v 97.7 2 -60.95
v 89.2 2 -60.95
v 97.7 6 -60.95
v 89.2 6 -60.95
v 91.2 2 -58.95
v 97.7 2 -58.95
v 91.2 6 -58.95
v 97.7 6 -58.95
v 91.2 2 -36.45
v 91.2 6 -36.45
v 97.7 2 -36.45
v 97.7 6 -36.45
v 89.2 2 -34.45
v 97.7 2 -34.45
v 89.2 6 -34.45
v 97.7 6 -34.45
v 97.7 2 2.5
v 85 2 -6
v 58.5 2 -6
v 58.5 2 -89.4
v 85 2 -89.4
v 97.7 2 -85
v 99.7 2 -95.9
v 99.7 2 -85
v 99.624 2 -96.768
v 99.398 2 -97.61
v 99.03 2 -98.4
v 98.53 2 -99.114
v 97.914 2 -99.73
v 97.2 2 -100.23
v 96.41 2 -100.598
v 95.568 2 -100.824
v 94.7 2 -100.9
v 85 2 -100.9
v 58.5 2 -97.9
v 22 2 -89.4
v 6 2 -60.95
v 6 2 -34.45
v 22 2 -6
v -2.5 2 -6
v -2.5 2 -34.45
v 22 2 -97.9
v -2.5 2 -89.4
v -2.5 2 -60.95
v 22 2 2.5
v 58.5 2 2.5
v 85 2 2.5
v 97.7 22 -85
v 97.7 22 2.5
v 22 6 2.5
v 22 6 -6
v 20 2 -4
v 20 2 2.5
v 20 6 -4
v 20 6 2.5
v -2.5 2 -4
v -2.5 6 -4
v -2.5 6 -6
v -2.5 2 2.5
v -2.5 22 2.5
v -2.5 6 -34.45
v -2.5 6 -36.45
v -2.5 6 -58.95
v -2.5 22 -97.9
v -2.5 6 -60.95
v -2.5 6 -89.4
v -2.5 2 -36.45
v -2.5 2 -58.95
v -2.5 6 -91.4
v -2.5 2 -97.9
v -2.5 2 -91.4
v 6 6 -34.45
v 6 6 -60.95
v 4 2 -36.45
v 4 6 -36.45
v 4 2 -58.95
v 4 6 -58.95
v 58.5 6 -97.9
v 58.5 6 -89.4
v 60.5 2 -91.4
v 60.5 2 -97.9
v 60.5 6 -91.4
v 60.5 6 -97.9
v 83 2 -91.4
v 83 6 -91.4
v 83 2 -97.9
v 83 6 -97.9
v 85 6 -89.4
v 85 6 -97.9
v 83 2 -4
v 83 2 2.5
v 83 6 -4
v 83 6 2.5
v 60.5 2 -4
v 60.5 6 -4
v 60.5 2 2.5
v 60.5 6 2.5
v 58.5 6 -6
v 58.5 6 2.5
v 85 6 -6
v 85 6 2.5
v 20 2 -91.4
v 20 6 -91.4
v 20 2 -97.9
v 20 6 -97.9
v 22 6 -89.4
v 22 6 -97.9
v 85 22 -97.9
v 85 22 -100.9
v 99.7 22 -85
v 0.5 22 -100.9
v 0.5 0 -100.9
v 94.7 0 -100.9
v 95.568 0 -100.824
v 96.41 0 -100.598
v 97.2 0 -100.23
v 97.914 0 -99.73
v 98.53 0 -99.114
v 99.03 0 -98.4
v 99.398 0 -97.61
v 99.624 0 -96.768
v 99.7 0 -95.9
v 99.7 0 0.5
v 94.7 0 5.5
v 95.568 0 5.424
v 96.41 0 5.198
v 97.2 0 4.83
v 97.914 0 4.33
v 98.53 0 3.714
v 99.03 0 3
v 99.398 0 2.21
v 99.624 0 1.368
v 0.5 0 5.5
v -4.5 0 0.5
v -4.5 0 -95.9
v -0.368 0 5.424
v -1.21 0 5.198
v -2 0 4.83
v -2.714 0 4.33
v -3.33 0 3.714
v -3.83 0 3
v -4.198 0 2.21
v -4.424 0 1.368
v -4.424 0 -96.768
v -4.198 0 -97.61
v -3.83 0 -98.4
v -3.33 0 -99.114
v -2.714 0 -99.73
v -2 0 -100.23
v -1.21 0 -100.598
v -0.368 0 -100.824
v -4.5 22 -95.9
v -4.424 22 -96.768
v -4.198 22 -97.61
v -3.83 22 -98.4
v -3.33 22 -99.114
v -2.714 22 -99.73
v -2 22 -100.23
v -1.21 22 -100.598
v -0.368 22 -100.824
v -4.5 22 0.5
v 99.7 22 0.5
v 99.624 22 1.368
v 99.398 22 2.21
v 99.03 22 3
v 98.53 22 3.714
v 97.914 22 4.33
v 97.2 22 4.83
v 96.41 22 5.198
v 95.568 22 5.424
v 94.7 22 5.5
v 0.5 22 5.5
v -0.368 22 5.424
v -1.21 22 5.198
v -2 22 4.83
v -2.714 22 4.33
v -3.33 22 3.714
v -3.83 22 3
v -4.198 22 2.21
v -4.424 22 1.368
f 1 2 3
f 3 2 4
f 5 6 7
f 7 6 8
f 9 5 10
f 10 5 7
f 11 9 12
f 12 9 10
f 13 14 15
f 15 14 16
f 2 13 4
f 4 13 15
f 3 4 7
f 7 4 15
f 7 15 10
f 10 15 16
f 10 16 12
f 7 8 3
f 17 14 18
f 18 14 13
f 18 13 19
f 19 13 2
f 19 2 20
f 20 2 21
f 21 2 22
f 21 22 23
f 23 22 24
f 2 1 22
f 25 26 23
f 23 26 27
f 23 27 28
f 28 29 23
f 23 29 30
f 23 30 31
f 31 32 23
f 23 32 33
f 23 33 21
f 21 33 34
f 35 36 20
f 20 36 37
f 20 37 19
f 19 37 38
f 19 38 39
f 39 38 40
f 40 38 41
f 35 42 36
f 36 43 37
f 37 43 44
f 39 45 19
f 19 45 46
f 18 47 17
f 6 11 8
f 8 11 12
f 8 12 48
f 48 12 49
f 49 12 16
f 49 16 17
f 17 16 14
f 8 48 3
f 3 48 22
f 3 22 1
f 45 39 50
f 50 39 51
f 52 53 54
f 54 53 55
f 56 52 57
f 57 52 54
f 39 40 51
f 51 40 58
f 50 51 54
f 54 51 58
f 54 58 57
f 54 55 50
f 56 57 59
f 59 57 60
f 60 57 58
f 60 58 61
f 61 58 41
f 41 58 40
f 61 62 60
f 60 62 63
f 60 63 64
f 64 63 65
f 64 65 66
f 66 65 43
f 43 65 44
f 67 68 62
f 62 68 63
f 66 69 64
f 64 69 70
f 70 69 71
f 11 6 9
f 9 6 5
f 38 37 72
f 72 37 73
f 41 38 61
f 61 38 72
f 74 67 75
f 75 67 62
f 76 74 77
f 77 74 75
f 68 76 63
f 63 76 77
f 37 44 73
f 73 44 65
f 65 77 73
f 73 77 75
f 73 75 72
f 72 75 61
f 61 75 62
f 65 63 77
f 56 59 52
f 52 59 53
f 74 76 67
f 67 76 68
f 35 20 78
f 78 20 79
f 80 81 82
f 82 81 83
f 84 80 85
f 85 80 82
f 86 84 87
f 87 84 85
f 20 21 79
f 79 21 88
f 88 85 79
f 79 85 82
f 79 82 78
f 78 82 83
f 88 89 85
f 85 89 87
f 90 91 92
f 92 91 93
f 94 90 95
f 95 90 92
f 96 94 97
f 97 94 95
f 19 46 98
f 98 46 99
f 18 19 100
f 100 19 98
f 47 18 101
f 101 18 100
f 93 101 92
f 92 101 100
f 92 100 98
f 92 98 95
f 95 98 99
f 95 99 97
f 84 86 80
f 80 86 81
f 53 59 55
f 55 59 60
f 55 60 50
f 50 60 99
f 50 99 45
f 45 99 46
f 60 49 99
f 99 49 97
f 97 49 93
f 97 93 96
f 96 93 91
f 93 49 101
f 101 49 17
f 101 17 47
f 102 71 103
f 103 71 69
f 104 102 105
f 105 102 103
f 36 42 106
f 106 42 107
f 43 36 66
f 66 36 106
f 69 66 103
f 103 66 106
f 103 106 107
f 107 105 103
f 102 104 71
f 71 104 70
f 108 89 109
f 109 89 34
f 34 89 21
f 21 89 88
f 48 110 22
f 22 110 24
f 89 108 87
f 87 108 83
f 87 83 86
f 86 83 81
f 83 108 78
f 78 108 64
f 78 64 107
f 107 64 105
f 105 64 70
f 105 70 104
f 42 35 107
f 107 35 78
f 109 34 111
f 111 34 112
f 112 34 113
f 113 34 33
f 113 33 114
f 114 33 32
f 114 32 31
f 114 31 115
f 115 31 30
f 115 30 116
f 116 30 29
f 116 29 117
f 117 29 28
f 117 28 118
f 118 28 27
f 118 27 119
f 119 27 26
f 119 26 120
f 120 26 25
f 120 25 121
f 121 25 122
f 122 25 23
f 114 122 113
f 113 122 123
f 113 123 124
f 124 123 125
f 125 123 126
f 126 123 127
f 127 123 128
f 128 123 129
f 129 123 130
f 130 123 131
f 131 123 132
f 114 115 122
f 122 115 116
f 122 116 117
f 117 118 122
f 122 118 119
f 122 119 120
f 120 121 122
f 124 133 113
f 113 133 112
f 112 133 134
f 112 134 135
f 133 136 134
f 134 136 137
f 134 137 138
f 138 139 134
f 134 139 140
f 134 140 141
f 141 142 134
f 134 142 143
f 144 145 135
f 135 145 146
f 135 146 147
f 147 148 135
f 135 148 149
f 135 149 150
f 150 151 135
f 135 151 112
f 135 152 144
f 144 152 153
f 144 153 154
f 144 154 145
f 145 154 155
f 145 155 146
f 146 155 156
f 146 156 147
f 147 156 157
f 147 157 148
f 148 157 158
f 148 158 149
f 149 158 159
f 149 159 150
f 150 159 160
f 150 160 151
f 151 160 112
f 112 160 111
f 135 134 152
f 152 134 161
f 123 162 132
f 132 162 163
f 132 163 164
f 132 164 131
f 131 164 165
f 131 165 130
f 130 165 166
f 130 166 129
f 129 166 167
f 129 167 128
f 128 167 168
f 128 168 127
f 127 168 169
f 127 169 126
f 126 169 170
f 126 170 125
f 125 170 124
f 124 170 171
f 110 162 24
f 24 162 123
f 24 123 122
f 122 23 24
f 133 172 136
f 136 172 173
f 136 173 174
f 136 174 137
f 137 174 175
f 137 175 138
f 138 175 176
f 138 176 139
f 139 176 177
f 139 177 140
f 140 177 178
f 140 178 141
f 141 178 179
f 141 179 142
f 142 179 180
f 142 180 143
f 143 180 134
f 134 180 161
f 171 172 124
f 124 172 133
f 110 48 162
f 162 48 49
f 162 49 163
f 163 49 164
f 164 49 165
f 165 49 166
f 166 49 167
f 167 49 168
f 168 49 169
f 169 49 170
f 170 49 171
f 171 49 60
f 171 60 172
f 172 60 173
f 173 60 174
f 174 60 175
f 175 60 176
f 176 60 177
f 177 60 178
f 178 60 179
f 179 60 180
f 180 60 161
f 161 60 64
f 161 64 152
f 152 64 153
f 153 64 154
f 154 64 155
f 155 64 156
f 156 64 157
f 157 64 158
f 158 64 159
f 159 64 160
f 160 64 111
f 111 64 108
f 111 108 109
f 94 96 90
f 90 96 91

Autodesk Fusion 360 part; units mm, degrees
sketch "草图1" plane through (0, 0, 0) normal (0, 1, 0) x (1, 0, 0)
  line L0 (0, 0) -> (95.2, 0)
  line L1 (95.2, 0) -> (95.2, 95.4)
  line L2 (95.2, 95.4) -> (0, 95.4)
  line L3 (0, 95.4) -> (0, 0)
  line L4 (-1.5, 96.9) -> (96.7, 96.9)
  line L5 (96.7, 96.9) -> (96.7, -1.5)
  line L6 (96.7, -1.5) -> (-1.5, -1.5)
  line L7 (-1.5, -1.5) -> (-1.5, 96.9)
  line L8 (-2.5, 97.9) -> (97.7, 97.9)
  line L9 (97.7, 97.9) -> (97.7, -2.5)
  line L10 (97.7, -2.5) -> (-2.5, -2.5)
  line L11 (-2.5, -2.5) -> (-2.5, 97.9)
  line L12 (-4.5, 100.9) -> (99.7, 100.9)
  line L13 (99.7, 100.9) -> (99.7, -5.5)
  line L14 (99.7, -5.5) -> (-4.5, -5.5)
  line L15 (-4.5, -5.5) -> (-4.5, 100.9)
  line L16 (99.7, 100.9) -> (79.7, 100.9)
  line L17 (79.7, 100.9) -> (79.7, 80.9)
  line L18 (79.7, 80.9) -> (99.7, 80.9)
  line L19 (99.7, 80.9) -> (99.7, 100.9)
  line L20 (79.7, 100.9) -> (99.7, 80.9)
  dimension "d1" = 95.2
  dimension "d2" = 95.4
  dimension "d3" = 1.5
  dimension "d4" = 1.5
  dimension "d5" = 1.5
  dimension "d6" = 1.5
  dimension "d7" = 1
  dimension "d8" = 1
  dimension "d9" = 1
  dimension "d10" = 1
  dimension "d11" = 3
  dimension "d12" = 2
  dimension "d13" = 2
  dimension "d14" = 3
  dimension "d21" = 20
  dimension "d22" = 20
extrude "拉伸1" add sketch "草图1" along normal blind 2 contours L0 L1 L2 L3 L17 L18 | L0 L1 L2 L3 L4 L5 L6 L7 L17 L18 | L1 L2 L17 L18 L20 | L1 L5 L18 L20 | L2 L4 L17 L20 | L1 L2 L20 | L1 L2 L4 L5 L20 | L4 L5 L6 L7 L8 L9 L10 L11 L17 L18 | L5 L9 L18 L20 | L4 L8 L17 L20 | L4 L5 L8 L9 L20
extrude "拉伸2" add sketch "草图1" along normal blind 22 contours L8 L9 L10 L11 L12 L13 L14 L15 L17 L18 | L9 L18 L20 | L8 L17 L20 | L8 L9 L12 L13 L16 L19 L20
fillet "圆角1" radius 5 4 edges at (-4.5, 11, 5.5) (99.7, 11, 5.5) (-4.5, 11, -100.9) (99.7, 11, -100.9)
extrude "拉伸3" [suppressed]
fillet "圆角2" [suppressed]
sketch "草图2" plane through (0, 2, 0) normal (0, 1, 0) x (-1, 0, 0)
  line L0 (-97.7, -97.9) -> (2.5, -97.9)
  line L1 (2.5, -97.9) -> (2.5, 2.5)
  line L2 (2.5, 2.5) -> (-97.7, 2.5)
  line L3 (-97.7, 2.5) -> (-97.7, -97.9)
  line L4 (2.5, 2.5) -> (2.5, -20)
  line L5 (2.5, -20) -> (-5.5, -20)
  line L6 (-5.5, -20) -> (-5.5, -22)
  line L7 (-5.5, -22) -> (2.5, -22)
  line L8 (2.5, -22) -> (2.5, -20)
  line L9 (-5.5, -20) -> (-3.5, -20)
  line L10 (-3.5, -20) -> (-3.5, 2.5)
  line L11 (-3.5, 2.5) -> (-5.5, 2.5)
  line L12 (-5.5, 2.5) -> (-5.5, -20)
  line L13 (-97.7, 2.5) -> (-91.7, 2.5)
  line L14 (-91.7, 2.5) -> (-91.7, -20)
  line L15 (-91.7, -20) -> (-97.7, -20)
  line L16 (-97.7, -20) -> (-97.7, 2.5)
  line L17 (-97.7, -20) -> (-89.7, -20)
  line L18 (-89.7, -20) -> (-89.7, -23)
  line L19 (-89.7, -23) -> (-97.7, -23)
  line L20 (-97.7, -23) -> (-97.7, -20)
  line L21 (-89.7, -20) -> (-91.7, -20)
  line L22 (-91.7, -20) -> (-91.7, 2.5)
  line L23 (-91.7, 2.5) -> (-89.7, 2.5)
  line L24 (-89.7, 2.5) -> (-89.7, -20)
  line L25 (-91.7, -97.9) -> (-91.7, -75.4)
  line L26 (-91.7, -97.9) -> (-97.7, -97.9)
  line L27 (-97.7, -97.9) -> (-97.7, -75.4)
  line L28 (-97.7, -75.4) -> (-91.7, -75.4)
  line L29 (2.5, -97.9) -> (2.5, -75.4)
  line L30 (-3.5, -75.4) -> (2.5, -75.4)
  line L31 (-3.5, -97.9) -> (-3.5, -75.4)
  line L32 (2.5, -97.9) -> (-3.5, -97.9)
  line L33 (2.5, -75.4) -> (-5.5, -75.4)
  line L34 (-5.5, -75.4) -> (-5.5, -73.4)
  line L35 (-5.5, -73.4) -> (2.5, -73.4)
  line L36 (2.5, -73.4) -> (2.5, -75.4)
  line L37 (-5.5, -75.4) -> (-3.5, -75.4)
  line L38 (-3.5, -75.4) -> (-3.5, -97.9)
  line L39 (-3.5, -97.9) -> (-5.5, -97.9)
  line L40 (-5.5, -97.9) -> (-5.5, -75.4)
  line L41 (-97.7, -75.4) -> (-89.7, -75.4)
  line L42 (-89.7, -75.4) -> (-89.7, -73.4)
  line L43 (-89.7, -73.4) -> (-97.7, -73.4)
  line L44 (-97.7, -73.4) -> (-97.7, -75.4)
  line L45 (-89.7, -75.4) -> (-91.7, -75.4)
  line L46 (-91.7, -75.4) -> (-91.7, -97.9)
  line L47 (-91.7, -97.9) -> (-89.7, -97.9)
  line L48 (-89.7, -97.9) -> (-89.7, -75.4)
  line L49 (-47.6, -97.9) -> (-47.6, -91.9)
  line L50 (-47.6, -91.9) -> (-36.35, -91.9)
  line L51 (-47.6, -91.9) -> (-58.85, -91.9)
  line L52 (-36.35, -91.9) -> (-58.85, -91.9)
  line L53 (-58.85, -91.9) -> (-58.85, -97.9)
  line L54 (-58.85, -97.9) -> (-36.35, -97.9)
  line L55 (-36.35, -97.9) -> (-36.35, -91.9)
  line L56 (-47.6, 2.5) -> (-36.35, 2.5)
  line L57 (-36.35, -3.5) -> (-36.35, 2.5)
  line L58 (-58.85, -3.5) -> (-36.35, -3.5)
  line L59 (-36.35, 2.5) -> (-58.85, 2.5)
  line L60 (-58.85, 2.5) -> (-58.85, -3.5)
  line L61 (-36.35, -97.9) -> (-34.35, -97.9)
  line L62 (-34.35, -97.9) -> (-34.35, -89.9)
  line L63 (-34.35, -89.9) -> (-36.35, -89.9)
  line L64 (-36.35, -89.9) -> (-36.35, -97.9)
  line L65 (-36.35, -89.9) -> (-58.85, -89.9)
  line L66 (-58.85, -89.9) -> (-58.85, -91.9)
  line L67 (-58.85, -91.9) -> (-36.35, -91.9)
  line L68 (-36.35, -91.9) -> (-36.35, -89.9)
  line L69 (-58.85, -89.9) -> (-60.85, -89.9)
  line L70 (-60.85, -89.9) -> (-60.85, -97.9)
  line L71 (-60.85, -97.9) -> (-58.85, -97.9)
  line L72 (-58.85, -97.9) -> (-58.85, -89.9)
  line L73 (-36.35, 2.5) -> (-34.35, 2.5)
  line L74 (-34.35, 2.5) -> (-34.35, -5.5)
  line L75 (-34.35, -5.5) -> (-36.35, -5.5)
  line L76 (-36.35, -5.5) -> (-36.35, 2.5)
  line L77 (-58.85, 2.5) -> (-60.85, 2.5)
  line L78 (-60.85, 2.5) -> (-60.85, -5.5)
  line L79 (-60.85, -5.5) -> (-58.85, -5.5)
  line L80 (-58.85, -5.5) -> (-58.85, 2.5)
  line L81 (-36.35, -5.5) -> (-58.85, -5.5)
  line L82 (-58.85, -5.5) -> (-58.85, -3.5)
  line L83 (-58.85, -3.5) -> (-36.35, -3.5)
  line L84 (-36.35, -3.5) -> (-36.35, -5.5)
  dimension "d27" = 22.5
  dimension "d28" = 8
  dimension "d29" = 2
  dimension "d32" = 6
  dimension "d33" = 22.5
  dimension "d34" = 8
  dimension "d35" = 3
  dimension "d38" = 77.9
  dimension "d39" = 0
  dimension "d42" = 94.2
  dimension "d43" = 0
  dimension "d44" = 8
  dimension "d45" = 2
  dimension "d46" = 8
  dimension "d47" = 2
  dimension "d50" = 6
  dimension "d51" = 11.25
  dimension "d52" = 11.25
  dimension "d55" = 0
  dimension "d56" = 94.4
  dimension "d57" = 2
  dimension "d58" = 8
  dimension "d59" = 2
  dimension "d60" = 8
  dimension "d61" = 2
  dimension "d62" = 8
  dimension "d63" = 2
  dimension "d64" = 8
extrude "拉伸4" [suppressed]
extrude "拉伸5" [suppressed]
extrude "拉伸6" [suppressed]
sketch "草图3" plane through (0, 2, 0) normal (0, 1, 0) x (-1, 0, 0)
  line L0 (2.5, 2.5) -> (-97.7, 2.5)
  line L1 (-97.7, 2.5) -> (-97.7, -97.9)
  line L2 (-97.7, -97.9) -> (2.5, -97.9)
  line L3 (2.5, -97.9) -> (2.5, 2.5)
  line L4 (2.5, 2.5) -> (-20, 2.5)
  line L5 (-20, 2.5) -> (-20, -4)
  line L6 (-20, -4) -> (2.5, -4)
  line L7 (2.5, -4) -> (2.5, 2.5)
  line L8 (2.5, -4) -> (-20, -4)
  line L9 (-20, -4) -> (-20, -6)
  line L10 (-20, -6) -> (2.5, -6)
  line L11 (2.5, -6) -> (2.5, -4)
  line L12 (-20, -6) -> (-22, -6)
  line L13 (-22, -6) -> (-22, 2.5)
  line L14 (-22, 2.5) -> (-20, 2.5)
  line L15 (-20, 2.5) -> (-20, -6)
  line L16 (-20, -91.4) -> (-20, -97.9)
  line L17 (-20, -97.9) -> (2.5, -97.9)
  line L18 (2.5, -97.9) -> (2.5, -91.4)
  line L19 (2.5, -91.4) -> (-20, -91.4)
  line L20 (2.5, -97.9) -> (-20, -97.9)
  line L21 (2.5, -91.4) -> (-20, -91.4)
  line L22 (-20, -91.4) -> (-20, -89.4)
  line L23 (-20, -89.4) -> (2.5, -89.4)
  line L24 (2.5, -89.4) -> (2.5, -91.4)
  line L25 (-20, -89.4) -> (-22, -89.4)
  line L26 (-22, -89.4) -> (-22, -97.9407)
  line L27 (-22, -97.9407) -> (-20, -97.9407)
  line L28 (-20, -97.9407) -> (-20, -89.4)
  line L29 (2.5, -47.7) -> (-4, -47.7)
  line L30 (-4, -47.7) -> (-4, -58.95)
  line L31 (-4, -58.95) -> (2.5, -58.95)
  line L32 (2.5, -58.95) -> (2.5, -47.7)
  line L33 (-4, -47.7) -> (2.5, -47.7)
  line L34 (2.5, -47.7) -> (2.5, -36.45)
  line L35 (2.5, -36.45) -> (-4, -36.45)
  line L36 (-4, -36.45) -> (-4, -47.7)
  line L37 (-97.7, -36.45) -> (-97.7, -47.7)
  line L38 (-91.2, -47.7) -> (-91.2, -36.45)
  line L39 (-97.7, -47.7) -> (-97.7, -58.95)
  line L40 (-91.2, -58.95) -> (-91.2, -47.7)
  line L41 (-91.2, -36.45) -> (-97.7, -36.45)
  line L42 (-91.2, -47.7) -> (-97.7, -47.7)
  line L43 (-97.7, -47.7) -> (-91.2, -47.7)
  line L44 (-97.7, -58.95) -> (-91.2, -58.95)
  line L45 (2.5, -36.45) -> (-6, -36.45)
  line L46 (-6, -36.45) -> (-6, -34.45)
  line L47 (-6, -34.45) -> (2.5, -34.45)
  line L48 (2.5, -34.45) -> (2.5, -36.45)
  line L49 (-4, -58.95) -> (-6, -58.95)
  line L50 (-6, -58.95) -> (-6, -36.45)
  line L51 (-6, -36.45) -> (-4, -36.45)
  line L52 (-4, -36.45) -> (-4, -58.95)
  line L53 (-6, -58.95) -> (2.5, -58.95)
  line L54 (2.5, -58.95) -> (2.5, -60.95)
  line L55 (2.5, -60.95) -> (-6, -60.95)
  line L56 (-6, -60.95) -> (-6, -58.95)
  line L57 (-97.7, -36.45) -> (-89.2, -36.45)
  line L58 (-89.2, -36.45) -> (-89.2, -34.45)
  line L59 (-89.2, -34.45) -> (-97.7, -34.45)
  line L60 (-97.7, -34.45) -> (-97.7, -36.45)
  line L61 (-89.2, -36.45) -> (-91.2, -36.45)
  line L62 (-91.2, -36.45) -> (-91.2, -58.95)
  line L63 (-91.2, -58.95) -> (-89.2, -58.95)
  line L64 (-89.2, -58.95) -> (-89.2, -36.45)
  line L65 (-89.2, -58.95) -> (-97.7, -58.95)
  line L66 (-97.7, -58.95) -> (-97.7, -60.95)
  line L67 (-97.7, -60.95) -> (-89.2, -60.95)
  line L68 (-89.2, -60.95) -> (-89.2, -58.95)
  line L69 (-101, -101) -> (-85, -101)
  line L70 (-85, -101) -> (-85, -85)
  line L71 (-85, -85) -> (-101, -85)
  line L72 (-101, -85) -> (-101, -101)
  line L73 (-85, -97.9) -> (-83, -97.9)
  line L74 (-83, -97.9) -> (-83, -89.4)
  line L75 (-83, -89.4) -> (-85, -89.4)
  line L76 (-85, -89.4) -> (-85, -97.9)
  line L77 (-83, -97.9) -> (-60.5, -97.9)
  line L78 (-60.5, -97.9) -> (-60.5, -91.4)
  line L79 (-60.5, -91.4) -> (-83, -91.4)
  line L80 (-83, -91.4) -> (-83, -97.9)
  line L81 (-83, -89.4) -> (-60.5, -89.4)
  line L82 (-60.5, -89.4) -> (-60.5, -91.4)
  line L83 (-60.5, -91.4) -> (-83, -91.4)
  line L84 (-83, -91.4) -> (-83, -89.4)
  line L85 (-60.5, -89.4) -> (-58.5, -89.4)
  line L86 (-58.5, -89.4) -> (-58.5, -97.9)
  line L87 (-58.5, -97.9) -> (-60.5, -97.9)
  line L88 (-60.5, -97.9) -> (-60.5, -89.4)
  line L89 (-60.5, 2.5) -> (-83, 2.5)
  line L90 (-60.5, 2.5) -> (-83, 2.5)
  line L91 (-83, -4) -> (-60.5, -4)
  line L92 (-60.5, -4) -> (-60.5, 2.5)
  line L93 (-83, 2.5) -> (-83, -4)
  line L94 (-60.5, 2.5) -> (-58.5, 2.5)
  line L95 (-58.5, 2.5) -> (-58.5, -6)
  line L96 (-58.5, -6) -> (-60.5, -6)
  line L97 (-60.5, -6) -> (-60.5, 2.5)
  line L98 (-60.5, -6) -> (-83, -6)
  line L99 (-83, -6) -> (-83, -4)
  line L100 (-83, -4) -> (-60.5, -4)
  line L101 (-60.5, -4) -> (-60.5, -6)
  line L102 (-83, -6) -> (-85, -6)
  line L103 (-85, -6) -> (-85, 2.5)
  line L104 (-85, 2.5) -> (-83, 2.5)
  line L105 (-83, 2.5) -> (-83, -6)
  point P0 (-20, -91.4)
  point P1 (2.5, -91.4)
  point P2 (0, -93.9)
  point P3 (-60.5, -4)
  dimension "d67" = 22.5
  dimension "d68" = 6.5
  dimension "d69" = 22.5
  dimension "d70" = 2
  dimension "d79" = 2
  dimension "d80" = 2
  dimension "d84" = 6.5
  dimension "d85" = 11.25
  dimension "d86" = 11.25
  dimension "d89" = -93.7
  dimension "d90" = 0
  dimension "d91" = 8.5
  dimension "d92" = 2
  dimension "d93" = 2
  dimension "d94" = 8.5
  dimension "d95" = 2
  dimension "d96" = 2
  dimension "d101" = 2
  dimension "d102" = 8.5
  dimension "d103" = 22.5
  dimension "d104" = 6.5
  dimension "d105" = 2
  dimension "d108" = -93.9
  dimension "d109" = 0
  dimension "d110" = 2
  dimension "d111" = 8.5
  dimension "d112" = 2
extrude "拉伸8" cut sketch "草图3" along normal blind 24 contours L1 L2 L69 L70 L71 L72
extrude "拉伸9" add sketch "草图3" along normal blind 4 contours L0 L5 L9 L12 L13 L14 L15 | L3 L6 L8 L9 L10 L11 L15 | L0 L92 L94 L95 L96 L97 L101 | L3 L35 L45 L46 L47 L48 L51 | L0 L93 L99 L102 L103 L104 L105 | L91 L97 L98 L99 L100 L101 L105 | L30 L36 L45 L49 L50 L51 L52 L53 | L3 L31 L49 L53 L54 L55 L56 | L1 L41 L57 L58 L59 L60 L61 | L3 L19 L21 L22 L23 L24 L28 | L2 L16 L22 L25 L26 L28 | L38 L40 L57 L61 L62 L63 L64 L65 | L1 L44 L63 L65 L66 L67 L68 | L2 L78 L82 L85 L86 L87 L88 | L2 L70 L73 L74 L75 L76 L80 L84 | L74 L79 L81 L82 L83 L84 L88
